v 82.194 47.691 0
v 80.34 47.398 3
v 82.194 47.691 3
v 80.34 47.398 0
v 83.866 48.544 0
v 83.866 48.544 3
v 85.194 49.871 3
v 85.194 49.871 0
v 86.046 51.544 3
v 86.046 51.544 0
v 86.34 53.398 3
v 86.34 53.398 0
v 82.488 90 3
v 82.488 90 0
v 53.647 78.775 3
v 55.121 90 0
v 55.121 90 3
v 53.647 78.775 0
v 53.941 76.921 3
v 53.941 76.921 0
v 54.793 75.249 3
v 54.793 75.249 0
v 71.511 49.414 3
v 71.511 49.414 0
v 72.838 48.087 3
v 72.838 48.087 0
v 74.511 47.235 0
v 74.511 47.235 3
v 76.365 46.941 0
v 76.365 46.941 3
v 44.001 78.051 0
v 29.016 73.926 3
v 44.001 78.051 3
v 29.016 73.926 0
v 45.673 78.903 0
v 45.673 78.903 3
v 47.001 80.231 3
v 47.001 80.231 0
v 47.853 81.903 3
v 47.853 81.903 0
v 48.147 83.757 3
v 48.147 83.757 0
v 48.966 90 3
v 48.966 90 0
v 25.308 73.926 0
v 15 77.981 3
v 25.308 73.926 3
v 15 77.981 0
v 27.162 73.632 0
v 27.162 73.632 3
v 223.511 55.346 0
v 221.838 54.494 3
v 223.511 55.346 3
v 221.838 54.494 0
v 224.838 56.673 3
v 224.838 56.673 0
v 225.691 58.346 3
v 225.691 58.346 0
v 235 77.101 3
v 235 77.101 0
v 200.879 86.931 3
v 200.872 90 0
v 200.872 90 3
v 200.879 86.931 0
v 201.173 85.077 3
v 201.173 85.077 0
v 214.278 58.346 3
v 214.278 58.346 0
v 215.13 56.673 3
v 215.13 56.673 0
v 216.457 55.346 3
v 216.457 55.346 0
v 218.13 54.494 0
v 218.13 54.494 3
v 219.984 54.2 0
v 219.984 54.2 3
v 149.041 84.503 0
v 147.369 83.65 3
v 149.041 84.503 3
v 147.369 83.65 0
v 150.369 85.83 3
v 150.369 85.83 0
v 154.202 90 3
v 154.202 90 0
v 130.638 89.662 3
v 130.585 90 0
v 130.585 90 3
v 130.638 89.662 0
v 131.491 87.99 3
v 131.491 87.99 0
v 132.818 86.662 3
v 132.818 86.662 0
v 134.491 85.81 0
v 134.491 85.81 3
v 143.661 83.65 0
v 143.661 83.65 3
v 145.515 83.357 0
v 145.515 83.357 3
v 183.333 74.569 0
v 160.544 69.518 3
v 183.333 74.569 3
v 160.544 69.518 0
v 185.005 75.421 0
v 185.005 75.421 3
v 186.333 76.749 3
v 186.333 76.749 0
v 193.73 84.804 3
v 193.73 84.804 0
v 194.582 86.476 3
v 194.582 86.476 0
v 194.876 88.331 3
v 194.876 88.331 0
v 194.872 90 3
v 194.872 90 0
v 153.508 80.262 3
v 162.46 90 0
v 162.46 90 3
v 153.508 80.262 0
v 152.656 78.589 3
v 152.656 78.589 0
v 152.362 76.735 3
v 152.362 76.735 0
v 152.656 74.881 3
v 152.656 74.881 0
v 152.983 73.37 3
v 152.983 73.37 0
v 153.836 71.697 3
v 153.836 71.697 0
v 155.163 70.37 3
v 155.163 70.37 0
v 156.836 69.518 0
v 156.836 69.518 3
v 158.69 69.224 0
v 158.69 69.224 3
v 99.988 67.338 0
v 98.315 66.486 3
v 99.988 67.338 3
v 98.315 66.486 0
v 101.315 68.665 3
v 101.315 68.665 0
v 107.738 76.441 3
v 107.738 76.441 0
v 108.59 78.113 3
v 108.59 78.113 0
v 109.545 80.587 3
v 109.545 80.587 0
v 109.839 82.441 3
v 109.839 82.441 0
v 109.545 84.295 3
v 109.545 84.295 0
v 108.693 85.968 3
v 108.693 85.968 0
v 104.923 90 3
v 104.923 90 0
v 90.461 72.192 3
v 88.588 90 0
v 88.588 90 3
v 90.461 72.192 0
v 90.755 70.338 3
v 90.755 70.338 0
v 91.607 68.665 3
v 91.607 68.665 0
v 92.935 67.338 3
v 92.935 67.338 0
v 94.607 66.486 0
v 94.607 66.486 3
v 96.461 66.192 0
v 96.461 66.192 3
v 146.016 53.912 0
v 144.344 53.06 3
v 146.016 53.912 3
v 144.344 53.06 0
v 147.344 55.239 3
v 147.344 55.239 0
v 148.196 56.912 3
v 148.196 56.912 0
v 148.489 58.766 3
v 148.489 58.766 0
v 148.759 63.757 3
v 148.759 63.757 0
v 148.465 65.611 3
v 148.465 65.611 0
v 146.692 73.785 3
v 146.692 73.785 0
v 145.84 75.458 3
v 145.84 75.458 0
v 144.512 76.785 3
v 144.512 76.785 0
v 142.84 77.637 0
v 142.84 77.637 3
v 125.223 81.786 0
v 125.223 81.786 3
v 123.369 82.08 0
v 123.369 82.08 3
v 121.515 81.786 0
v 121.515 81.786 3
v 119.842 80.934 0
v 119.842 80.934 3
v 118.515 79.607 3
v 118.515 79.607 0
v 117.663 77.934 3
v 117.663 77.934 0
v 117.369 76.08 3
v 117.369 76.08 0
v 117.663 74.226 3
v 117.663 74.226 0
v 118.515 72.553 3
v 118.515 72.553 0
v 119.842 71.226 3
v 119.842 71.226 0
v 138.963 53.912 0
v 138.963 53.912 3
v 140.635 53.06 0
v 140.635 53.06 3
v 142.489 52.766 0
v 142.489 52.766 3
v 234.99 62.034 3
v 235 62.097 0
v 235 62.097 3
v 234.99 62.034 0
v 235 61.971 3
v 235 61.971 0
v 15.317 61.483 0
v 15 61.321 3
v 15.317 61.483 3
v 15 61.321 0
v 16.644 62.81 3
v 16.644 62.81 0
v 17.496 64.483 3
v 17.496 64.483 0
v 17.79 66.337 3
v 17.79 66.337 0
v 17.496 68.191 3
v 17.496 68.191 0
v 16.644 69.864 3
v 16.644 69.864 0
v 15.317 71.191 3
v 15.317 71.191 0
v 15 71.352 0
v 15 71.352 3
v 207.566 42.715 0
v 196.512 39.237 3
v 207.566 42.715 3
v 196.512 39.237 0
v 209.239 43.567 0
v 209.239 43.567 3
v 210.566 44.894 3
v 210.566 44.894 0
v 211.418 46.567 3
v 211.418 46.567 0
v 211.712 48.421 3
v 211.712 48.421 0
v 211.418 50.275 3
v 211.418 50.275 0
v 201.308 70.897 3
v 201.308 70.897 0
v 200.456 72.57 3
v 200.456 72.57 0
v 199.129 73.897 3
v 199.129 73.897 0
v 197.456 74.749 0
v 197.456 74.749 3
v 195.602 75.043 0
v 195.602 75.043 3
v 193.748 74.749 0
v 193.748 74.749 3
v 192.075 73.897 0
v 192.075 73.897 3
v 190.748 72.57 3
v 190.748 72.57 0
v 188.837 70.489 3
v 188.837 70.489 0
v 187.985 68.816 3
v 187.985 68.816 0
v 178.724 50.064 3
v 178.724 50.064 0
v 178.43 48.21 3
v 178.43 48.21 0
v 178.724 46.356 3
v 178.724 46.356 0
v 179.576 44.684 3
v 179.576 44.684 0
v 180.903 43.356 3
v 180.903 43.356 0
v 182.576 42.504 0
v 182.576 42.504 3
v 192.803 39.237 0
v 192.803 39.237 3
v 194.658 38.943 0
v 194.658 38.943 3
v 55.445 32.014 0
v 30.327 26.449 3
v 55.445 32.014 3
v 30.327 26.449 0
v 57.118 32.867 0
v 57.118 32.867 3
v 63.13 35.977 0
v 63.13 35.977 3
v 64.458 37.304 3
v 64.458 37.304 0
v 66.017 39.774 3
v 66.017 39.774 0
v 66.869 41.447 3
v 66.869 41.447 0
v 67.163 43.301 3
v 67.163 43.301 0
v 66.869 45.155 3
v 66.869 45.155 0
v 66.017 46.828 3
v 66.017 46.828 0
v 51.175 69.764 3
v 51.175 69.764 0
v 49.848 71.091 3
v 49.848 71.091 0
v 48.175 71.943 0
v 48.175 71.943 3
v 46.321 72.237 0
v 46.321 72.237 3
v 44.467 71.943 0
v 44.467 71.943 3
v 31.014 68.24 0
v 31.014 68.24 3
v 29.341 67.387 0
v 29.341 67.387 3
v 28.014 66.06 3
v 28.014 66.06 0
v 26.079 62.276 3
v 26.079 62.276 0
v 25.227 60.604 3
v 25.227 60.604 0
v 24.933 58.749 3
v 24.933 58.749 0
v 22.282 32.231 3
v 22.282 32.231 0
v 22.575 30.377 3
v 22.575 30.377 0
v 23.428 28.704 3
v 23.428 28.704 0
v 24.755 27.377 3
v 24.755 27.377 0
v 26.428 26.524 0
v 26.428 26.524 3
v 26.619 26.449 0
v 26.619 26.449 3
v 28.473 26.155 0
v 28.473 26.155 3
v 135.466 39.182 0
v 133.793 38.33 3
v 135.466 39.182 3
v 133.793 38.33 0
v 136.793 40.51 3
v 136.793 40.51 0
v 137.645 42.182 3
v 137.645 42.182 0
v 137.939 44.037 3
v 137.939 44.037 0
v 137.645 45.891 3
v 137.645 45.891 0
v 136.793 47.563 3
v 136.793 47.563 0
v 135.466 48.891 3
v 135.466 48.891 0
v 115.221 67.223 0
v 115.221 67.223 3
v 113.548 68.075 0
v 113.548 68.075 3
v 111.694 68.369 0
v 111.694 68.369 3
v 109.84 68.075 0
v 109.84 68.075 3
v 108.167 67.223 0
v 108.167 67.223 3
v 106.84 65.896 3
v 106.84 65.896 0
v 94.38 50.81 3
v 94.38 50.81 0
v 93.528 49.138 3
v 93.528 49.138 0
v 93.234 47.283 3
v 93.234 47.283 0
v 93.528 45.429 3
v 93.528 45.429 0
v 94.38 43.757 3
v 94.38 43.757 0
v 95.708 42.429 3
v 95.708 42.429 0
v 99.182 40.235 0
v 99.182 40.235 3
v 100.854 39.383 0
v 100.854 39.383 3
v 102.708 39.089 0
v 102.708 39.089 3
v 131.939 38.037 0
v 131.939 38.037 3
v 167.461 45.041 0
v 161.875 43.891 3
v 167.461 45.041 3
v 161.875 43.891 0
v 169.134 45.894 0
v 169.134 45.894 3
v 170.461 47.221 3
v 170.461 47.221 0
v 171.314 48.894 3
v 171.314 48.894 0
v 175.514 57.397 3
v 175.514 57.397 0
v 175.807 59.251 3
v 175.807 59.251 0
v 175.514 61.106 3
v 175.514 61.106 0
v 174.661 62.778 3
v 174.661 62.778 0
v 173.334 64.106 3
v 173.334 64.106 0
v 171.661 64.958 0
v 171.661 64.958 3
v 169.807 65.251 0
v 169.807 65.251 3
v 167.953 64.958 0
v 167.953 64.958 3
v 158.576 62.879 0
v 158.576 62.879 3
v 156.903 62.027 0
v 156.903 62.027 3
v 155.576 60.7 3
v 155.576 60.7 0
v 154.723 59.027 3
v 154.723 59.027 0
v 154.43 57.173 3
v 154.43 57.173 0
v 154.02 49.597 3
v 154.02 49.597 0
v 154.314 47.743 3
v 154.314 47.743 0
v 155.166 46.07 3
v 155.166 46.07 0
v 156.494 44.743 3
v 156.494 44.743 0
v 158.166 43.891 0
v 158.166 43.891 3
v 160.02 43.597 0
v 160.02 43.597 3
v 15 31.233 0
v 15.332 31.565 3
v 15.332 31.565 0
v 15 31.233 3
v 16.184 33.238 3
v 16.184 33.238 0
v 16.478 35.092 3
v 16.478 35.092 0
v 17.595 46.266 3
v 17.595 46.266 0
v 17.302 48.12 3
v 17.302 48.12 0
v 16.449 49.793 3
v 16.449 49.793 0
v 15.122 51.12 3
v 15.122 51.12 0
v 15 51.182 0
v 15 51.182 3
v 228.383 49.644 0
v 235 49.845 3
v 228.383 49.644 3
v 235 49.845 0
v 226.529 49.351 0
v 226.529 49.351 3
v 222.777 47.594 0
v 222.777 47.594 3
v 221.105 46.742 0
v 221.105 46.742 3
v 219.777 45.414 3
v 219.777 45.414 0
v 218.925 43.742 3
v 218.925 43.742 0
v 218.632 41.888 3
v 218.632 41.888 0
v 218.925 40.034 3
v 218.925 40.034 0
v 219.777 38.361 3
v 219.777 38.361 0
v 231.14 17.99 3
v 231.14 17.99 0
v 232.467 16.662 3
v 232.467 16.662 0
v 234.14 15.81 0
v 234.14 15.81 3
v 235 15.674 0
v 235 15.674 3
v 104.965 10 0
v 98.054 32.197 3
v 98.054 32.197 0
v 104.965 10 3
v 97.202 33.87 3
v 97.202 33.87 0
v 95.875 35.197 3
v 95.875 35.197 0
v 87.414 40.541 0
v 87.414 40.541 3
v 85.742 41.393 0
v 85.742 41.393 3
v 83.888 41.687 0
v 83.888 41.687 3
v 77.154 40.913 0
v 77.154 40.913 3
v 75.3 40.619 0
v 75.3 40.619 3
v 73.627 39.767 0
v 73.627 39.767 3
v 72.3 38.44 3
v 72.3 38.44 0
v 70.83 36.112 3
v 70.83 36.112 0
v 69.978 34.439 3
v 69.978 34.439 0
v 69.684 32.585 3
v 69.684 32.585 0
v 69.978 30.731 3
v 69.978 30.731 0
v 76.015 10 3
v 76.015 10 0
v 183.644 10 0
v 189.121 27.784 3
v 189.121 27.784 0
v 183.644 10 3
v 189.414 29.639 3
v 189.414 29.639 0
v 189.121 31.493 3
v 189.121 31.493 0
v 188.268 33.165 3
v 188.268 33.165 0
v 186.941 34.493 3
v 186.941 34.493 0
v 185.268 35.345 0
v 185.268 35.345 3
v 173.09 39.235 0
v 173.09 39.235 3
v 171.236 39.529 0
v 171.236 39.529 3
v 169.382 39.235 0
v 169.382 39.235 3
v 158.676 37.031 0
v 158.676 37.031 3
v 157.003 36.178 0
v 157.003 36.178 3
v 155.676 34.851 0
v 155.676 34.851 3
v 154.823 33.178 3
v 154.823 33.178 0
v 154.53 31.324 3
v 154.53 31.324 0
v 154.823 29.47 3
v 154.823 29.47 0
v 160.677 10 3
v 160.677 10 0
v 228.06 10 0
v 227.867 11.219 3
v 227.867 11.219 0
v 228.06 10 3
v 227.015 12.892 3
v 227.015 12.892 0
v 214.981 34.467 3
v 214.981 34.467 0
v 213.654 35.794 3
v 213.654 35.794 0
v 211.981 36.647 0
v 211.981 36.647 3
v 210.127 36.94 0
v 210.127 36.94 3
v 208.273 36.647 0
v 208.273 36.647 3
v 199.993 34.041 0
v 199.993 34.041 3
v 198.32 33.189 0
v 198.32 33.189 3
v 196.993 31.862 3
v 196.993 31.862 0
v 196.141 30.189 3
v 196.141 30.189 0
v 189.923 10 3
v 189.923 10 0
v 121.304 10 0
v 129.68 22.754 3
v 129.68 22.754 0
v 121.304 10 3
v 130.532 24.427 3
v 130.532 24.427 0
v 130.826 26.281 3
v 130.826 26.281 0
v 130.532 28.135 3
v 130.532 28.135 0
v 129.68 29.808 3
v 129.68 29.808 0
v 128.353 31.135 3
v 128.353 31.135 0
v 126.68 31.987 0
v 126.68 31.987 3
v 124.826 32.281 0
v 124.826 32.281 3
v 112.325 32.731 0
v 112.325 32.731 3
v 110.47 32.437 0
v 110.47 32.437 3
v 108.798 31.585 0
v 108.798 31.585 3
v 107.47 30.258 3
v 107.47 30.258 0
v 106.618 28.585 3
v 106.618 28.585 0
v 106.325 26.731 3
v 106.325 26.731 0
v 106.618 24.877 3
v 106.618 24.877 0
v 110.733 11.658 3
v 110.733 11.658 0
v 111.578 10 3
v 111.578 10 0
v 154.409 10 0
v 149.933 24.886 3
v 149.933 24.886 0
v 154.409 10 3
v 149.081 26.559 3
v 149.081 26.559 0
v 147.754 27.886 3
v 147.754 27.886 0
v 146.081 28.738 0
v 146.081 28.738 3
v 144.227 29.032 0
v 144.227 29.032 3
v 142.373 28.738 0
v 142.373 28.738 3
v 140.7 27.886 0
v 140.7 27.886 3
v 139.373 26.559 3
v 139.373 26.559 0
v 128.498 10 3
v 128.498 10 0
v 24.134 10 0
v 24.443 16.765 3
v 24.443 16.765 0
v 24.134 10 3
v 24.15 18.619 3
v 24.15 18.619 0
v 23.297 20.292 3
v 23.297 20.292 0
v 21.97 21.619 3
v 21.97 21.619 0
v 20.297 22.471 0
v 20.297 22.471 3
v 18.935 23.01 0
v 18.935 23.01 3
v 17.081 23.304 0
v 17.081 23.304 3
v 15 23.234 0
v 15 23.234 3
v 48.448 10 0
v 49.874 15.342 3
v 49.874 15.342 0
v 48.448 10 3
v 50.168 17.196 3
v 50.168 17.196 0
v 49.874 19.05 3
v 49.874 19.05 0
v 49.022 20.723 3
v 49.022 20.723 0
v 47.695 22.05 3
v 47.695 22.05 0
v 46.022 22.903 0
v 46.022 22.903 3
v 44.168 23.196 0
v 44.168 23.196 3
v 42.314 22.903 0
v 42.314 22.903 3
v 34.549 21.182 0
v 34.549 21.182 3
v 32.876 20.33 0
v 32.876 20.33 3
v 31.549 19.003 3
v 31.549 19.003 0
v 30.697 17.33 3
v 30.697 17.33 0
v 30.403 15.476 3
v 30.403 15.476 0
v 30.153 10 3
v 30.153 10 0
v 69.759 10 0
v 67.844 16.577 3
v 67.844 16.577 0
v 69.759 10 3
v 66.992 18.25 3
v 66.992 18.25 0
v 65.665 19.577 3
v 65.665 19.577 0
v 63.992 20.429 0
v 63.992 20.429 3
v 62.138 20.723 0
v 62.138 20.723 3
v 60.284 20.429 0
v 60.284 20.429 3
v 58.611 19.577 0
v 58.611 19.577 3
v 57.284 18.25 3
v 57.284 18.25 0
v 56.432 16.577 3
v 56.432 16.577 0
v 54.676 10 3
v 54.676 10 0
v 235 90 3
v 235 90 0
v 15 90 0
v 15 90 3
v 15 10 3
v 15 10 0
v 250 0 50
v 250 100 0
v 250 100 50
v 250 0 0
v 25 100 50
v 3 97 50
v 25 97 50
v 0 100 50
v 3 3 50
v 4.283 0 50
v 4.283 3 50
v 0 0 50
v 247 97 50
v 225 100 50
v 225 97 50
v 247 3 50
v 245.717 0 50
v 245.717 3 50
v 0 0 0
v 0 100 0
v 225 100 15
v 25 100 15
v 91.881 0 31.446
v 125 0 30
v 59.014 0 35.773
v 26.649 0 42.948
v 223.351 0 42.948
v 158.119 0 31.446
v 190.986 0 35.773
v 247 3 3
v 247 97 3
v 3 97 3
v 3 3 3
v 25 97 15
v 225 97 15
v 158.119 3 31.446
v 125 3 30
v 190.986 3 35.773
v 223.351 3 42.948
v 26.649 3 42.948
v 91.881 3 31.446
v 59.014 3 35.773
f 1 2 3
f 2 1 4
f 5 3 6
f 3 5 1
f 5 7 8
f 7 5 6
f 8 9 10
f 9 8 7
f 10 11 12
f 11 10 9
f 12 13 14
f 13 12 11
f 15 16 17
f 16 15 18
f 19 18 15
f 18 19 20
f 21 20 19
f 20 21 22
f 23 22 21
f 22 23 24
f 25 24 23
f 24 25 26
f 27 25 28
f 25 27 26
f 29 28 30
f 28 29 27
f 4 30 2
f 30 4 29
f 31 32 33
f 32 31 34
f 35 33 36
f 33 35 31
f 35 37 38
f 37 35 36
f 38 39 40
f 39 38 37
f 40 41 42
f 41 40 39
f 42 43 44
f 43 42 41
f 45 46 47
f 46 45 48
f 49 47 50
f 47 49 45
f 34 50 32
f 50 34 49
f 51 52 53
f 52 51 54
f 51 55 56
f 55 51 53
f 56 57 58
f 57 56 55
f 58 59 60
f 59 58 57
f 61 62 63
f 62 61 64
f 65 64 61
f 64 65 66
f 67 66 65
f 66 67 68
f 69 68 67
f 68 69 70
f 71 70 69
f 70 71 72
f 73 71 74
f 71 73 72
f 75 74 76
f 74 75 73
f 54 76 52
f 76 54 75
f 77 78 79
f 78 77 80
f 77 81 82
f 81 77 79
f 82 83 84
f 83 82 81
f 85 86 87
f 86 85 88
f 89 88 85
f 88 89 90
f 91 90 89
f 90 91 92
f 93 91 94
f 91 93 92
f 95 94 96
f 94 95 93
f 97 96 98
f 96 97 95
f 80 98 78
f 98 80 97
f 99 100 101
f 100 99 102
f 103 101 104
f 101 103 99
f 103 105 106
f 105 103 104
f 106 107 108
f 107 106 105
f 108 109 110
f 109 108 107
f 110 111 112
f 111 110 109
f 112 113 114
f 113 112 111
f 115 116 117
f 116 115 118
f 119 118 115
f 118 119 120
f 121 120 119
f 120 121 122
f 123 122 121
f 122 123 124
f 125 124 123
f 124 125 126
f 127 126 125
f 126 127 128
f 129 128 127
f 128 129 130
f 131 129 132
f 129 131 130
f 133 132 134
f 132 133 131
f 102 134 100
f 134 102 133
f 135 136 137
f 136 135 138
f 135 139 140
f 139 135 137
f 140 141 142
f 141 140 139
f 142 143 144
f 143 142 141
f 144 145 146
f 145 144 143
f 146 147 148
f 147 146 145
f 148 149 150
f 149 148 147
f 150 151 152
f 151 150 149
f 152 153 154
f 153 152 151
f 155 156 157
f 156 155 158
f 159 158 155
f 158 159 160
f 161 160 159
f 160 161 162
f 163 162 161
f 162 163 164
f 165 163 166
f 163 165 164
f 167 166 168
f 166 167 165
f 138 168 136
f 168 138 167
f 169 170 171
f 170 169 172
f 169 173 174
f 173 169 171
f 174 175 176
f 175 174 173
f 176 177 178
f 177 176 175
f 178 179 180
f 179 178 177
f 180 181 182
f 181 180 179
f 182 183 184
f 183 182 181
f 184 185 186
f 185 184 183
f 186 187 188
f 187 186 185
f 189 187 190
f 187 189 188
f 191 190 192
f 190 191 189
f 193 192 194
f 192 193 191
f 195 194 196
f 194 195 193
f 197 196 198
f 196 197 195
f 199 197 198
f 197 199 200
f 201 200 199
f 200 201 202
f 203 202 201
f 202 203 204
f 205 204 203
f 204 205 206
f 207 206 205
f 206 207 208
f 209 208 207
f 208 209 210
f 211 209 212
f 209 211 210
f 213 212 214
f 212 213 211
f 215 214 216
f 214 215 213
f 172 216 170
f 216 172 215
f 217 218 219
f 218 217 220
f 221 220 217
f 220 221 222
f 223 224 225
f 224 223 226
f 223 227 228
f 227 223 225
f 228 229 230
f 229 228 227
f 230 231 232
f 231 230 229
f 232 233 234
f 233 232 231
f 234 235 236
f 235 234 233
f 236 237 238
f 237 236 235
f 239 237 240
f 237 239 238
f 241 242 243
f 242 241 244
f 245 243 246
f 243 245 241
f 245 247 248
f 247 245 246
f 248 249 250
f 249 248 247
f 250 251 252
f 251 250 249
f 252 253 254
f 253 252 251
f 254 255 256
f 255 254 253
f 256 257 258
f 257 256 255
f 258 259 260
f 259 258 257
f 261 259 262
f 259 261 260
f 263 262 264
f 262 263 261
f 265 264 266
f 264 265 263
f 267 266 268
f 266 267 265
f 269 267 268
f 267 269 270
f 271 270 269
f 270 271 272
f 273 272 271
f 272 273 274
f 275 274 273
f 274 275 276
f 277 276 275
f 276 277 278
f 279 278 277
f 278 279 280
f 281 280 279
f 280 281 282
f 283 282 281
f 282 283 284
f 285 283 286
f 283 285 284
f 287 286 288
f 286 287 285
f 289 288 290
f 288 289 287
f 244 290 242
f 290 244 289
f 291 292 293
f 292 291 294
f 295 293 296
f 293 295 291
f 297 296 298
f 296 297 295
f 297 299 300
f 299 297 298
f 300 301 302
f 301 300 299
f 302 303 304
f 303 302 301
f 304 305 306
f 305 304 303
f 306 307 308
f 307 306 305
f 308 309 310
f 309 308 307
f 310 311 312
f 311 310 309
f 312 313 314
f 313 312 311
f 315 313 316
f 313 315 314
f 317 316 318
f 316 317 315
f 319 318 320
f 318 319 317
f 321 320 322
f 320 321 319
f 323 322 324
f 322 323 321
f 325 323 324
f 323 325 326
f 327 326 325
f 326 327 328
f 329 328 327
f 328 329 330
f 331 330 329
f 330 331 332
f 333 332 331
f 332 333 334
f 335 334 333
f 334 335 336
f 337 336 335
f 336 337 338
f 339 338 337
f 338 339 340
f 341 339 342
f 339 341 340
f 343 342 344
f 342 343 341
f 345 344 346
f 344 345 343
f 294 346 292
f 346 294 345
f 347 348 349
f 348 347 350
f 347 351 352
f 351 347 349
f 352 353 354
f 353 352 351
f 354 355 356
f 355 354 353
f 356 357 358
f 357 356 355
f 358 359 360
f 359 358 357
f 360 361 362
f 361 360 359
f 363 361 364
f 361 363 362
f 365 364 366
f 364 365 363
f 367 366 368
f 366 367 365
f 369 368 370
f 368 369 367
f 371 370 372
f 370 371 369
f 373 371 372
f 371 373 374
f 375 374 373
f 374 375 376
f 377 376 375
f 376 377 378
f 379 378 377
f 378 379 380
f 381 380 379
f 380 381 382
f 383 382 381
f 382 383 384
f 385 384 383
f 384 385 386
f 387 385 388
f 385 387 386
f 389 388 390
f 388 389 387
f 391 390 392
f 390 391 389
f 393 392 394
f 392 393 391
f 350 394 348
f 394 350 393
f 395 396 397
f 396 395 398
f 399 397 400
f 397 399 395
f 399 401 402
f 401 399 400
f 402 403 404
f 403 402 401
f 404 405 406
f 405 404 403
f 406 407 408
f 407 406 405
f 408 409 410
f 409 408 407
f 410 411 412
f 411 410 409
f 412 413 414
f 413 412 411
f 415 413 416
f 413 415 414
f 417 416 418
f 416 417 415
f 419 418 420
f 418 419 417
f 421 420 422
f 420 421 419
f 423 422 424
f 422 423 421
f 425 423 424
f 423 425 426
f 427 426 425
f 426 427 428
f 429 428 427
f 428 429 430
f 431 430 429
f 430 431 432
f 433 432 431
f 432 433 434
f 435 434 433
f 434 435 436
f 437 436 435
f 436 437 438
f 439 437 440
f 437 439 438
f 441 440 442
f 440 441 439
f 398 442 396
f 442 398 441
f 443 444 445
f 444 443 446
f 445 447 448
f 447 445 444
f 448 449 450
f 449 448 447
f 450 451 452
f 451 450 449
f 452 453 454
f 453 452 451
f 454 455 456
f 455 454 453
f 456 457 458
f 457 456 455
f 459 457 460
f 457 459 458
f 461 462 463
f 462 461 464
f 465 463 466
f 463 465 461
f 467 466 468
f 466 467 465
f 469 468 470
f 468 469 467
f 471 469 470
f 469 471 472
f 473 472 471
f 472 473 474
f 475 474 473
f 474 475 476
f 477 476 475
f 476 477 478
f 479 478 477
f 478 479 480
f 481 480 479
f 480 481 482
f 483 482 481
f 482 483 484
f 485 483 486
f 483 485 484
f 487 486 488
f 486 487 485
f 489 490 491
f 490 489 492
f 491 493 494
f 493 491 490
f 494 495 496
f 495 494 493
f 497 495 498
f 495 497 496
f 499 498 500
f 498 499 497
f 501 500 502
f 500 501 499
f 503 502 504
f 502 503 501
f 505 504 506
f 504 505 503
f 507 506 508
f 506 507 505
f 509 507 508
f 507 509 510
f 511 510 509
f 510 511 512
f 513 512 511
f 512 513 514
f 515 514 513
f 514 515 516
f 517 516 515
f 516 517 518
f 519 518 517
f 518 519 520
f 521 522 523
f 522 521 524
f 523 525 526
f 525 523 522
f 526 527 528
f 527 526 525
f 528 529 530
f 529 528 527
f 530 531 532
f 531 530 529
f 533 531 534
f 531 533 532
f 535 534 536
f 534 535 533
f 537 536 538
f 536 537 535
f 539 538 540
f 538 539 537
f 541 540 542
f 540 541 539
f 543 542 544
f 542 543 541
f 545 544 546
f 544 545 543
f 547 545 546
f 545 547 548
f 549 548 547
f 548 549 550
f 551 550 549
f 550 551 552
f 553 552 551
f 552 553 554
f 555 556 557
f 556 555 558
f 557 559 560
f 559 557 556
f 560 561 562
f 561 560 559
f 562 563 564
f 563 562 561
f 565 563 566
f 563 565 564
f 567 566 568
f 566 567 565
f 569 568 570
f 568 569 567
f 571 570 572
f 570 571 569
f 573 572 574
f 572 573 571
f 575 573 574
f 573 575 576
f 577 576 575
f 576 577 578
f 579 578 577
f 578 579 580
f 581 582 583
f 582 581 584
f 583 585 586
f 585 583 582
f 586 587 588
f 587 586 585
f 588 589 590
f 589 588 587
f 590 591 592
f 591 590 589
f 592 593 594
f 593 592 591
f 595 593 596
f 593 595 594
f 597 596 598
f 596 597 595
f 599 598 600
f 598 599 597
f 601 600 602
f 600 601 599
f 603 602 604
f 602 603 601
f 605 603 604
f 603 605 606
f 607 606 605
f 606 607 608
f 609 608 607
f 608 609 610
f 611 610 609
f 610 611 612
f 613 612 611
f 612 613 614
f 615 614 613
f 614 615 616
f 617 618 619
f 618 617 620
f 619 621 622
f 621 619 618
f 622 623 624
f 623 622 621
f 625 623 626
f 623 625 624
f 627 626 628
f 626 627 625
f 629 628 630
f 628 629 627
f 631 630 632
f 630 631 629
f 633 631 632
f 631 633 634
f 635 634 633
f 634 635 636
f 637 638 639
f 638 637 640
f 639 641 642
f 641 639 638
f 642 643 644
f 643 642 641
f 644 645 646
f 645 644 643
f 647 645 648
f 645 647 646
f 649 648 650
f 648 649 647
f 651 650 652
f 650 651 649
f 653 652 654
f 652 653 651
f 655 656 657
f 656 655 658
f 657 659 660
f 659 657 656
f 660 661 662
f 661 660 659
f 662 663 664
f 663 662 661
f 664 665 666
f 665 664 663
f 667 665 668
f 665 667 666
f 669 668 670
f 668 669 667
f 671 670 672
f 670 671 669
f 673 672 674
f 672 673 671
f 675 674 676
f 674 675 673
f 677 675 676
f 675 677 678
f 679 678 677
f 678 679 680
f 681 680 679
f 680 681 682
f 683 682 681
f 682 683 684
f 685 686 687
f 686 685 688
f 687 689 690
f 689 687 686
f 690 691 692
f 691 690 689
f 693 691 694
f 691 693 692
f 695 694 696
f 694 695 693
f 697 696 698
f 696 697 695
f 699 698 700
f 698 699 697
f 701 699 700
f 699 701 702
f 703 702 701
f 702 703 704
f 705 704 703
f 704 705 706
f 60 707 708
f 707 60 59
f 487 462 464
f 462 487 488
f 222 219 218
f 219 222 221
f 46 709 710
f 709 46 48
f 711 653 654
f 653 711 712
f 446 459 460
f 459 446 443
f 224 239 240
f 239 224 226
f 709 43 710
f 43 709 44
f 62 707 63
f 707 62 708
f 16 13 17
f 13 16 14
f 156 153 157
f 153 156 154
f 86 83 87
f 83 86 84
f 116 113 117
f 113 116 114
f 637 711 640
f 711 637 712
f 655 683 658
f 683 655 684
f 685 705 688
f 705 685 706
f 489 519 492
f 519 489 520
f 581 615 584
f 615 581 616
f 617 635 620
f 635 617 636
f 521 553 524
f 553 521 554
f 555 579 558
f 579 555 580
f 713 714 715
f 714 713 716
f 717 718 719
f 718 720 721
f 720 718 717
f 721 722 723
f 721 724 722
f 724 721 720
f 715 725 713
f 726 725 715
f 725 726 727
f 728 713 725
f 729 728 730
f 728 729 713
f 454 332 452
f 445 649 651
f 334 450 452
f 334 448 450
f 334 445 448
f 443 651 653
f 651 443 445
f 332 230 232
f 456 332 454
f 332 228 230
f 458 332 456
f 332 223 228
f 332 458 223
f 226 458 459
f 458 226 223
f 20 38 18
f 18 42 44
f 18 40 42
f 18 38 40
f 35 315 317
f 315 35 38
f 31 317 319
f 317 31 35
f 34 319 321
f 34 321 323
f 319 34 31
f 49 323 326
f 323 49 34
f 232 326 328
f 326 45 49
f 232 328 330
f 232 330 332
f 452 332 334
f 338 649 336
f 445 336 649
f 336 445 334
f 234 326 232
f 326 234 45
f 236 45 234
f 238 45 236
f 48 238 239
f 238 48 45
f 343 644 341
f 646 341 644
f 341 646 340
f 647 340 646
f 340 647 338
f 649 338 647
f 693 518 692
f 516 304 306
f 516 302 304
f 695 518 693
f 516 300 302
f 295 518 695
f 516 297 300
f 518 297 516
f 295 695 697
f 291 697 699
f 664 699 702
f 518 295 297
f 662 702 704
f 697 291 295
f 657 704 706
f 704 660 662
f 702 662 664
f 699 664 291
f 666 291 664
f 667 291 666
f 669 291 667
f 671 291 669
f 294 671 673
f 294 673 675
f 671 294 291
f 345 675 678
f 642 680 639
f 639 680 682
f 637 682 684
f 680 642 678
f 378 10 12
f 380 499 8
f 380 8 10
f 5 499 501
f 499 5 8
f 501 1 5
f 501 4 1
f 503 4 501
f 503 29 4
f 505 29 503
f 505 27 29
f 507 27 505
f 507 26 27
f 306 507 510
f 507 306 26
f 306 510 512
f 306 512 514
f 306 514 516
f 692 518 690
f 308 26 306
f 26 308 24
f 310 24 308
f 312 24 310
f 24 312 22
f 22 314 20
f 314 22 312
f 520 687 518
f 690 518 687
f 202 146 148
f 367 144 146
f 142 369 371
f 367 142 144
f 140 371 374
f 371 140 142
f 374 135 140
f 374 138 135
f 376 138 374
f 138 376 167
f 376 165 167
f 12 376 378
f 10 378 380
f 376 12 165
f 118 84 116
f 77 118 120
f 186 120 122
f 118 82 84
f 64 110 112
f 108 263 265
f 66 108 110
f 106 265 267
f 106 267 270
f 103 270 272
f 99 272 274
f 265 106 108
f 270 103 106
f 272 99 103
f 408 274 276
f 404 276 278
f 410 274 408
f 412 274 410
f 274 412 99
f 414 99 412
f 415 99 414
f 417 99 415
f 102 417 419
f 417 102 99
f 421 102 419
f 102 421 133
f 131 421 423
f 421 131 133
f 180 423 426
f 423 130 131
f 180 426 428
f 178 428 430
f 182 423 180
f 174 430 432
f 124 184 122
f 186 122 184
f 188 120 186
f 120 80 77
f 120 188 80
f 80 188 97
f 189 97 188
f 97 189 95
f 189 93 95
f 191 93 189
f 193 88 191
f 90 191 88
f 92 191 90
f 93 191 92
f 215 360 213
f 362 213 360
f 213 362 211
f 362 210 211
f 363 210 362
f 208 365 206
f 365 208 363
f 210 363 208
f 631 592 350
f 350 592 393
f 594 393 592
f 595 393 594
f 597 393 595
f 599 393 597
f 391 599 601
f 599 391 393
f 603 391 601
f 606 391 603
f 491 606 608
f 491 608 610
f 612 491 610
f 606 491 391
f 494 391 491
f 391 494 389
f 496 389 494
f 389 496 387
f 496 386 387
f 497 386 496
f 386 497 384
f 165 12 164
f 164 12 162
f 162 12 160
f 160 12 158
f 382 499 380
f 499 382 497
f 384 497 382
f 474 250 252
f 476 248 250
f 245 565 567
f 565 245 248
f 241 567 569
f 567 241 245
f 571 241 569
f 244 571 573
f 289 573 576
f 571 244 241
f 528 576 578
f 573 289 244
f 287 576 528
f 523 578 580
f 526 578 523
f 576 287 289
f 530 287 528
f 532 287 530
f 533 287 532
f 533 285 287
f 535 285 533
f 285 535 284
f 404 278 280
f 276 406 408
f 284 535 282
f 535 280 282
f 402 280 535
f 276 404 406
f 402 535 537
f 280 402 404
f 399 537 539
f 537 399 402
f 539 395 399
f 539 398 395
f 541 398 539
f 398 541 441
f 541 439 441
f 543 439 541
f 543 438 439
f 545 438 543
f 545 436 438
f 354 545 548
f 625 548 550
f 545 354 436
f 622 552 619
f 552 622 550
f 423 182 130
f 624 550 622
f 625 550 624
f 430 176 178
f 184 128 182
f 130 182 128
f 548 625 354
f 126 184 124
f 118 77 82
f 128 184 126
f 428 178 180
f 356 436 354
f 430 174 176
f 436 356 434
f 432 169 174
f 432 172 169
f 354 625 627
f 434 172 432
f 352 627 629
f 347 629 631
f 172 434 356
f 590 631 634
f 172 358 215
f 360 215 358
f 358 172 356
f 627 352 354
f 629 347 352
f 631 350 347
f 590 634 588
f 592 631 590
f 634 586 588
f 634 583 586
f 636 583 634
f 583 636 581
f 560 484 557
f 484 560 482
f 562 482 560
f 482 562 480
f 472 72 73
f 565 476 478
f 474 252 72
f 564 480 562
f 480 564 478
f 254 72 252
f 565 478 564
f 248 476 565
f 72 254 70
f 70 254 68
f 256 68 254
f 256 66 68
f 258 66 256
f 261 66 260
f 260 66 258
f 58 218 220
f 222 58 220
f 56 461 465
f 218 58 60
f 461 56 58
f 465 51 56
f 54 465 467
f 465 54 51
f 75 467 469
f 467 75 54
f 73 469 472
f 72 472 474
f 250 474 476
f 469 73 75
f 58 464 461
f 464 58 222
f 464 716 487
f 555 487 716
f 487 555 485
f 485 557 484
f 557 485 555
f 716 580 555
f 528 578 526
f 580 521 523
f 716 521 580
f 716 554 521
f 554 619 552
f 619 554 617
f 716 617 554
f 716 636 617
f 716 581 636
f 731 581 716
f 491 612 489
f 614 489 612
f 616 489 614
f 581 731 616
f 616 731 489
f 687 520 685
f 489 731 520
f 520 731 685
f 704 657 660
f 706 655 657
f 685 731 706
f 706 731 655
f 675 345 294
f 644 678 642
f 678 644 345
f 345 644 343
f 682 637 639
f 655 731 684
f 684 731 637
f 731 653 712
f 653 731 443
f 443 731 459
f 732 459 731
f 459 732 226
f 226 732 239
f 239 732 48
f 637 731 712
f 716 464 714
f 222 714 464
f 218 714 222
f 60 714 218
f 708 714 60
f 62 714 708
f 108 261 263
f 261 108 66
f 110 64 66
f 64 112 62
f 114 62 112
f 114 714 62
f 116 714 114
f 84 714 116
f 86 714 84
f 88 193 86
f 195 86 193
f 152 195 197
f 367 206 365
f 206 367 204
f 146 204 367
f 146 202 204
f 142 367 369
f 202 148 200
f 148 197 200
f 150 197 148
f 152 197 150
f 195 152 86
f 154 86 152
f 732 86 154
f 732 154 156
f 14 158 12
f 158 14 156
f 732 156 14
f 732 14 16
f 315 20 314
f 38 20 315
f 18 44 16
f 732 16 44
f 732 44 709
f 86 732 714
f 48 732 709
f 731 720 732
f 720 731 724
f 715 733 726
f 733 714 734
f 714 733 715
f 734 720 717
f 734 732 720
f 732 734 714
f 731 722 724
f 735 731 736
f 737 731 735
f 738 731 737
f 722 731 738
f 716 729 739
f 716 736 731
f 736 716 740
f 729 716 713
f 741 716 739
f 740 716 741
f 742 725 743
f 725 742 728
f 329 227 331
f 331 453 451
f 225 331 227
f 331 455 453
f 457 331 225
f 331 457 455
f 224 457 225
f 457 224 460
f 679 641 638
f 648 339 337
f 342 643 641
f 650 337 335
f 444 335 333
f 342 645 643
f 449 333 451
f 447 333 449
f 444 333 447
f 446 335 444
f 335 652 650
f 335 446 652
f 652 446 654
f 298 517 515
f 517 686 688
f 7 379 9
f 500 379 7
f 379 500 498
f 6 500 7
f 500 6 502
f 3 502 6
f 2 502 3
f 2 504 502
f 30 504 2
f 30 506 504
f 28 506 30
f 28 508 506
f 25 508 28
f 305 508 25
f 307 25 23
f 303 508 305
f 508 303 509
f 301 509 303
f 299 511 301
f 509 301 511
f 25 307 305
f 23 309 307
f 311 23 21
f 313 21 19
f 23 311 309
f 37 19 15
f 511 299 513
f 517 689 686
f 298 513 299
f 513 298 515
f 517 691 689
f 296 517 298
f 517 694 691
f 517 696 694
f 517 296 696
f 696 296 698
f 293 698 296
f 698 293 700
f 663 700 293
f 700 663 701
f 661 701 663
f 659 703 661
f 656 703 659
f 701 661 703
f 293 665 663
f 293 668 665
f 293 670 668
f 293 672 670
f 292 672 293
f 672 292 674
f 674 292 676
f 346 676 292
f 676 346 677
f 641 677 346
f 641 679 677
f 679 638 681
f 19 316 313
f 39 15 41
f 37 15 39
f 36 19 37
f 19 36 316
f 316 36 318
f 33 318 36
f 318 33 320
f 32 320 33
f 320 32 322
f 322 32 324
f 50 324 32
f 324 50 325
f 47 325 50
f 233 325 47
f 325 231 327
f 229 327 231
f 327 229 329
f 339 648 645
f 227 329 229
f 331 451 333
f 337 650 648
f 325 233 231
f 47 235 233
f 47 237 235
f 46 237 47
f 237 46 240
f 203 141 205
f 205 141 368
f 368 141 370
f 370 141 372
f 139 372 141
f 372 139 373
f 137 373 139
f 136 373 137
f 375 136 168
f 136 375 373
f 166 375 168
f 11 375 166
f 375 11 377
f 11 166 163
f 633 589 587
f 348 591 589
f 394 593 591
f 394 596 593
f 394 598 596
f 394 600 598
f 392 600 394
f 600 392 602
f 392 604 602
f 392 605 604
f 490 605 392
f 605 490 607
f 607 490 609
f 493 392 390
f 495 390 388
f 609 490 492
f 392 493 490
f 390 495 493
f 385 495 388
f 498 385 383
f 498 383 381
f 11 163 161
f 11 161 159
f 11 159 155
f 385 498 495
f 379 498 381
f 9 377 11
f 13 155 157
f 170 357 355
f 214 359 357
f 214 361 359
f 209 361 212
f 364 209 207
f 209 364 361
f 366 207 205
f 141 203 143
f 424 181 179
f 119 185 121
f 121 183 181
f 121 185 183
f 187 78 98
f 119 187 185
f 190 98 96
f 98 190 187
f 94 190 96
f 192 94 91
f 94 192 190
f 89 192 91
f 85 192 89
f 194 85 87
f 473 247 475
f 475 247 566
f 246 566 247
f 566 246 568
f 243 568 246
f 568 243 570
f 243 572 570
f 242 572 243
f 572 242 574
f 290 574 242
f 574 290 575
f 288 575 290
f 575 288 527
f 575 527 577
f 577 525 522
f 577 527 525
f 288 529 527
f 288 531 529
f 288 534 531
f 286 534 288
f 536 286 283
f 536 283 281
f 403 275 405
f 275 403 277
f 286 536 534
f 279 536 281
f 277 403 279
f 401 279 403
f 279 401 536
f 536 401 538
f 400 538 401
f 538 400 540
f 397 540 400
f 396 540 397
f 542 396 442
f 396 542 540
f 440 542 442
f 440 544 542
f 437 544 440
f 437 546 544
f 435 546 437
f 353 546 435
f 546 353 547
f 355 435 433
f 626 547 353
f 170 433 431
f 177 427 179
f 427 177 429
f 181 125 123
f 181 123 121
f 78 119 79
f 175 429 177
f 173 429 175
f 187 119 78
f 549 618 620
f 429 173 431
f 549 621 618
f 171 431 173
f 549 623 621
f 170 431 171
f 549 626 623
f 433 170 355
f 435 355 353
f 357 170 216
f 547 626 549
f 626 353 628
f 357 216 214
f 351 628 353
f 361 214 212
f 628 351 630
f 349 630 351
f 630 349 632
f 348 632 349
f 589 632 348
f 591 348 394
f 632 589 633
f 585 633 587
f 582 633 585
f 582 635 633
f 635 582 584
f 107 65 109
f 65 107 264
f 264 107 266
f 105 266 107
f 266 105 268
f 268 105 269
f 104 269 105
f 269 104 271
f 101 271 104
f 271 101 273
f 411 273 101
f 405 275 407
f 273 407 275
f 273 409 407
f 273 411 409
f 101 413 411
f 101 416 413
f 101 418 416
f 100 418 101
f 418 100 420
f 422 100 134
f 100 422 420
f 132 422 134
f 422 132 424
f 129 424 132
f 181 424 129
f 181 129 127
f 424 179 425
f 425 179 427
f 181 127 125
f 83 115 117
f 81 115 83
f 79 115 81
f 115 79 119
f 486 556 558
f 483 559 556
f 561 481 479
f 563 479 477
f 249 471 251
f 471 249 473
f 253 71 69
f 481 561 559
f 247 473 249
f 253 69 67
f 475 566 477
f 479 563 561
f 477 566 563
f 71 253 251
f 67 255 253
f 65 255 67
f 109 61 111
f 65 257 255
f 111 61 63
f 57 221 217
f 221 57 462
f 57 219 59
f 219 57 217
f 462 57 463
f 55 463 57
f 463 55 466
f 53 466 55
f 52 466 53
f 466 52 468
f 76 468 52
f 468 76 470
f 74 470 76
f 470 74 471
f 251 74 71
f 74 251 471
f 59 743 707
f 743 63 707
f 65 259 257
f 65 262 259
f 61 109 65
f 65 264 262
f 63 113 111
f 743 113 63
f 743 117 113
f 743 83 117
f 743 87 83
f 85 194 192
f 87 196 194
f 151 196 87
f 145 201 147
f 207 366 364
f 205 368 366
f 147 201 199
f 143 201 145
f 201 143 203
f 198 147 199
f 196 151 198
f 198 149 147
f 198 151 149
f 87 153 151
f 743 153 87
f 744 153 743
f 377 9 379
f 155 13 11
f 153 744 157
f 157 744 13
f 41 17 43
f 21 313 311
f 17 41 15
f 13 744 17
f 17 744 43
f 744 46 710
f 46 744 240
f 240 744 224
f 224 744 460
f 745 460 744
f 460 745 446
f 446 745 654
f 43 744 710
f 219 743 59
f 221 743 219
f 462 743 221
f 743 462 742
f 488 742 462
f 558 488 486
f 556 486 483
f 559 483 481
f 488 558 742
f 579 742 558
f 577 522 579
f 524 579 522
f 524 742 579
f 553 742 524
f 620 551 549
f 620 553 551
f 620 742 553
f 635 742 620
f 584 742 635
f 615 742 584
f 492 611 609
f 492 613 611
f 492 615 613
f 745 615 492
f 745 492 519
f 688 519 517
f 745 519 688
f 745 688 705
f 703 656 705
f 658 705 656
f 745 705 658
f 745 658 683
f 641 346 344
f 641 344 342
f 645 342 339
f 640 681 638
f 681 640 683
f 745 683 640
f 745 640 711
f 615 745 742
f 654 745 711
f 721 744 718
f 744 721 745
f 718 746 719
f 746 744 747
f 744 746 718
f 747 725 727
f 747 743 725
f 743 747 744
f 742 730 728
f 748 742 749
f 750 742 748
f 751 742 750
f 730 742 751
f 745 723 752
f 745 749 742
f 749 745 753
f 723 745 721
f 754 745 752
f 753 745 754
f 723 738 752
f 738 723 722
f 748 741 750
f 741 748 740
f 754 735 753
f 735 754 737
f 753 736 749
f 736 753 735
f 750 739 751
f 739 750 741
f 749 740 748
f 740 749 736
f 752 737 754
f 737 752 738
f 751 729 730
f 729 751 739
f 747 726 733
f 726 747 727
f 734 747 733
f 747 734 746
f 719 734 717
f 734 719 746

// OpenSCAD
// An under-mirror shelf for my camper bathroom.
// Modify and share under GPL version 3 or later.

eps = 0.1;

width = 100;
length = 250;
height = 50;
thickness = 3;
front_radius = 380;
front_height = 30;
back_length = 200;
back_height = 40;

bottom_voronoi_width = 80;
bottom_voronoi_length = 220;


difference() {
    cube([length, width, height]);

    // inside
    translate([thickness, thickness, thickness])
        cube([length - 2*thickness, width - 2*thickness, height - thickness + eps]);

    // front
    translate([length/2, 0, front_radius + front_height])
    rotate([90, 0, 0])
        cylinder(h = 3 * thickness, r = front_radius, center = true, $fa = 5);

    // back
    translate([length/2, width - thickness, back_height])
        cube([back_length, 3*thickness, height], center=true);

    // bottom voronoi
    translate([length/2, width/2, 0])
    intersection() {
        linear_extrude(3 * thickness, center = true)
        random_voronoi(n = 128, nuclei = false, thickness = 3, round = 6, min = 0,
            max = 400, seed = 44, center=true);

        cube([bottom_voronoi_length, bottom_voronoi_width, 3 * thickness], center = true);
    }
}

// Voronoi code below copied from Felipe Sanches' project repo.

// (c)2013 Felipe Sanches <juca@members.fsf.org>
// licensed under the terms of the GNU GPL version 3 (or later)

function normalize(v) = v / (sqrt(v[0] * v[0] + v[1] * v[1]));

//
// The voronoi() function generates a 2D surface, which can be provided to
// a) linear_extrude() to produce a 3D object
// b) intersection() to restrict it to a a specified shape -- see voronoi_polygon.scad
//
// Parameters:
//   points (required) ... nuclei coordinates (array of [x, y] pairs)
//   L                 ... the radius of the "world" (the pattern is built within this circle)
//   thickness         ... the thickness of the lines between cells
//   round             ... the radius applied to corners (fillet in CAD terms)
//   nuclei (bool)     ... show nuclei sites
//
// These parameters need to be kept more or less in proportion to each other, and to the distance
// apart of points in the point_set. If one or the other parameter is increased or decreased too
// much, you'll get no output.
//
module voronoi(points, L = 200, thickness = 1, round = 6, nuclei = true) {
	for (p = points) {
		difference() {
			minkowski() {
				intersection_for(p1 = points){
					if (p != p1) {
						angle = 90 + atan2(p[1] - p1[1], p[0] - p1[0]);

						translate((p + p1) / 2 - normalize(p1 - p) * (thickness + round))
						rotate([0, 0, angle])
						translate([-L, -L])
						square([2 * L, L]);
					}
				}
				circle(r = round, $fn = 20);
			}
			if (nuclei)
				translate(p) circle(r = 1, $fn = 20);
		}
	}
}

module random_voronoi(n = 20, nuclei = true, L = 200, thickness = 1, round = 6, min = 0, max = 100, seed = undef, center = false) {
	seed = seed == undef ? rands(0, 100, 1)[0] : seed;
	echo("Seed", seed);

	// Generate points.
	x = rands(min, max, n, seed);
	y = rands(min, max, n, seed + 1);
	points = [ for (i = [0 : n - 1]) [x[i], y[i]] ];
        
	// Center Voronoi.
	offset_x = center ? -(max(x) - min(x)) / 2 : 0;
	offset_y = center ? -(max(y) - min(y)) / 2 : 0;
	translate([offset_x, offset_y])
    
	voronoi(points, L = L, thickness = thickness, round = round, nuclei = nuclei);
}
